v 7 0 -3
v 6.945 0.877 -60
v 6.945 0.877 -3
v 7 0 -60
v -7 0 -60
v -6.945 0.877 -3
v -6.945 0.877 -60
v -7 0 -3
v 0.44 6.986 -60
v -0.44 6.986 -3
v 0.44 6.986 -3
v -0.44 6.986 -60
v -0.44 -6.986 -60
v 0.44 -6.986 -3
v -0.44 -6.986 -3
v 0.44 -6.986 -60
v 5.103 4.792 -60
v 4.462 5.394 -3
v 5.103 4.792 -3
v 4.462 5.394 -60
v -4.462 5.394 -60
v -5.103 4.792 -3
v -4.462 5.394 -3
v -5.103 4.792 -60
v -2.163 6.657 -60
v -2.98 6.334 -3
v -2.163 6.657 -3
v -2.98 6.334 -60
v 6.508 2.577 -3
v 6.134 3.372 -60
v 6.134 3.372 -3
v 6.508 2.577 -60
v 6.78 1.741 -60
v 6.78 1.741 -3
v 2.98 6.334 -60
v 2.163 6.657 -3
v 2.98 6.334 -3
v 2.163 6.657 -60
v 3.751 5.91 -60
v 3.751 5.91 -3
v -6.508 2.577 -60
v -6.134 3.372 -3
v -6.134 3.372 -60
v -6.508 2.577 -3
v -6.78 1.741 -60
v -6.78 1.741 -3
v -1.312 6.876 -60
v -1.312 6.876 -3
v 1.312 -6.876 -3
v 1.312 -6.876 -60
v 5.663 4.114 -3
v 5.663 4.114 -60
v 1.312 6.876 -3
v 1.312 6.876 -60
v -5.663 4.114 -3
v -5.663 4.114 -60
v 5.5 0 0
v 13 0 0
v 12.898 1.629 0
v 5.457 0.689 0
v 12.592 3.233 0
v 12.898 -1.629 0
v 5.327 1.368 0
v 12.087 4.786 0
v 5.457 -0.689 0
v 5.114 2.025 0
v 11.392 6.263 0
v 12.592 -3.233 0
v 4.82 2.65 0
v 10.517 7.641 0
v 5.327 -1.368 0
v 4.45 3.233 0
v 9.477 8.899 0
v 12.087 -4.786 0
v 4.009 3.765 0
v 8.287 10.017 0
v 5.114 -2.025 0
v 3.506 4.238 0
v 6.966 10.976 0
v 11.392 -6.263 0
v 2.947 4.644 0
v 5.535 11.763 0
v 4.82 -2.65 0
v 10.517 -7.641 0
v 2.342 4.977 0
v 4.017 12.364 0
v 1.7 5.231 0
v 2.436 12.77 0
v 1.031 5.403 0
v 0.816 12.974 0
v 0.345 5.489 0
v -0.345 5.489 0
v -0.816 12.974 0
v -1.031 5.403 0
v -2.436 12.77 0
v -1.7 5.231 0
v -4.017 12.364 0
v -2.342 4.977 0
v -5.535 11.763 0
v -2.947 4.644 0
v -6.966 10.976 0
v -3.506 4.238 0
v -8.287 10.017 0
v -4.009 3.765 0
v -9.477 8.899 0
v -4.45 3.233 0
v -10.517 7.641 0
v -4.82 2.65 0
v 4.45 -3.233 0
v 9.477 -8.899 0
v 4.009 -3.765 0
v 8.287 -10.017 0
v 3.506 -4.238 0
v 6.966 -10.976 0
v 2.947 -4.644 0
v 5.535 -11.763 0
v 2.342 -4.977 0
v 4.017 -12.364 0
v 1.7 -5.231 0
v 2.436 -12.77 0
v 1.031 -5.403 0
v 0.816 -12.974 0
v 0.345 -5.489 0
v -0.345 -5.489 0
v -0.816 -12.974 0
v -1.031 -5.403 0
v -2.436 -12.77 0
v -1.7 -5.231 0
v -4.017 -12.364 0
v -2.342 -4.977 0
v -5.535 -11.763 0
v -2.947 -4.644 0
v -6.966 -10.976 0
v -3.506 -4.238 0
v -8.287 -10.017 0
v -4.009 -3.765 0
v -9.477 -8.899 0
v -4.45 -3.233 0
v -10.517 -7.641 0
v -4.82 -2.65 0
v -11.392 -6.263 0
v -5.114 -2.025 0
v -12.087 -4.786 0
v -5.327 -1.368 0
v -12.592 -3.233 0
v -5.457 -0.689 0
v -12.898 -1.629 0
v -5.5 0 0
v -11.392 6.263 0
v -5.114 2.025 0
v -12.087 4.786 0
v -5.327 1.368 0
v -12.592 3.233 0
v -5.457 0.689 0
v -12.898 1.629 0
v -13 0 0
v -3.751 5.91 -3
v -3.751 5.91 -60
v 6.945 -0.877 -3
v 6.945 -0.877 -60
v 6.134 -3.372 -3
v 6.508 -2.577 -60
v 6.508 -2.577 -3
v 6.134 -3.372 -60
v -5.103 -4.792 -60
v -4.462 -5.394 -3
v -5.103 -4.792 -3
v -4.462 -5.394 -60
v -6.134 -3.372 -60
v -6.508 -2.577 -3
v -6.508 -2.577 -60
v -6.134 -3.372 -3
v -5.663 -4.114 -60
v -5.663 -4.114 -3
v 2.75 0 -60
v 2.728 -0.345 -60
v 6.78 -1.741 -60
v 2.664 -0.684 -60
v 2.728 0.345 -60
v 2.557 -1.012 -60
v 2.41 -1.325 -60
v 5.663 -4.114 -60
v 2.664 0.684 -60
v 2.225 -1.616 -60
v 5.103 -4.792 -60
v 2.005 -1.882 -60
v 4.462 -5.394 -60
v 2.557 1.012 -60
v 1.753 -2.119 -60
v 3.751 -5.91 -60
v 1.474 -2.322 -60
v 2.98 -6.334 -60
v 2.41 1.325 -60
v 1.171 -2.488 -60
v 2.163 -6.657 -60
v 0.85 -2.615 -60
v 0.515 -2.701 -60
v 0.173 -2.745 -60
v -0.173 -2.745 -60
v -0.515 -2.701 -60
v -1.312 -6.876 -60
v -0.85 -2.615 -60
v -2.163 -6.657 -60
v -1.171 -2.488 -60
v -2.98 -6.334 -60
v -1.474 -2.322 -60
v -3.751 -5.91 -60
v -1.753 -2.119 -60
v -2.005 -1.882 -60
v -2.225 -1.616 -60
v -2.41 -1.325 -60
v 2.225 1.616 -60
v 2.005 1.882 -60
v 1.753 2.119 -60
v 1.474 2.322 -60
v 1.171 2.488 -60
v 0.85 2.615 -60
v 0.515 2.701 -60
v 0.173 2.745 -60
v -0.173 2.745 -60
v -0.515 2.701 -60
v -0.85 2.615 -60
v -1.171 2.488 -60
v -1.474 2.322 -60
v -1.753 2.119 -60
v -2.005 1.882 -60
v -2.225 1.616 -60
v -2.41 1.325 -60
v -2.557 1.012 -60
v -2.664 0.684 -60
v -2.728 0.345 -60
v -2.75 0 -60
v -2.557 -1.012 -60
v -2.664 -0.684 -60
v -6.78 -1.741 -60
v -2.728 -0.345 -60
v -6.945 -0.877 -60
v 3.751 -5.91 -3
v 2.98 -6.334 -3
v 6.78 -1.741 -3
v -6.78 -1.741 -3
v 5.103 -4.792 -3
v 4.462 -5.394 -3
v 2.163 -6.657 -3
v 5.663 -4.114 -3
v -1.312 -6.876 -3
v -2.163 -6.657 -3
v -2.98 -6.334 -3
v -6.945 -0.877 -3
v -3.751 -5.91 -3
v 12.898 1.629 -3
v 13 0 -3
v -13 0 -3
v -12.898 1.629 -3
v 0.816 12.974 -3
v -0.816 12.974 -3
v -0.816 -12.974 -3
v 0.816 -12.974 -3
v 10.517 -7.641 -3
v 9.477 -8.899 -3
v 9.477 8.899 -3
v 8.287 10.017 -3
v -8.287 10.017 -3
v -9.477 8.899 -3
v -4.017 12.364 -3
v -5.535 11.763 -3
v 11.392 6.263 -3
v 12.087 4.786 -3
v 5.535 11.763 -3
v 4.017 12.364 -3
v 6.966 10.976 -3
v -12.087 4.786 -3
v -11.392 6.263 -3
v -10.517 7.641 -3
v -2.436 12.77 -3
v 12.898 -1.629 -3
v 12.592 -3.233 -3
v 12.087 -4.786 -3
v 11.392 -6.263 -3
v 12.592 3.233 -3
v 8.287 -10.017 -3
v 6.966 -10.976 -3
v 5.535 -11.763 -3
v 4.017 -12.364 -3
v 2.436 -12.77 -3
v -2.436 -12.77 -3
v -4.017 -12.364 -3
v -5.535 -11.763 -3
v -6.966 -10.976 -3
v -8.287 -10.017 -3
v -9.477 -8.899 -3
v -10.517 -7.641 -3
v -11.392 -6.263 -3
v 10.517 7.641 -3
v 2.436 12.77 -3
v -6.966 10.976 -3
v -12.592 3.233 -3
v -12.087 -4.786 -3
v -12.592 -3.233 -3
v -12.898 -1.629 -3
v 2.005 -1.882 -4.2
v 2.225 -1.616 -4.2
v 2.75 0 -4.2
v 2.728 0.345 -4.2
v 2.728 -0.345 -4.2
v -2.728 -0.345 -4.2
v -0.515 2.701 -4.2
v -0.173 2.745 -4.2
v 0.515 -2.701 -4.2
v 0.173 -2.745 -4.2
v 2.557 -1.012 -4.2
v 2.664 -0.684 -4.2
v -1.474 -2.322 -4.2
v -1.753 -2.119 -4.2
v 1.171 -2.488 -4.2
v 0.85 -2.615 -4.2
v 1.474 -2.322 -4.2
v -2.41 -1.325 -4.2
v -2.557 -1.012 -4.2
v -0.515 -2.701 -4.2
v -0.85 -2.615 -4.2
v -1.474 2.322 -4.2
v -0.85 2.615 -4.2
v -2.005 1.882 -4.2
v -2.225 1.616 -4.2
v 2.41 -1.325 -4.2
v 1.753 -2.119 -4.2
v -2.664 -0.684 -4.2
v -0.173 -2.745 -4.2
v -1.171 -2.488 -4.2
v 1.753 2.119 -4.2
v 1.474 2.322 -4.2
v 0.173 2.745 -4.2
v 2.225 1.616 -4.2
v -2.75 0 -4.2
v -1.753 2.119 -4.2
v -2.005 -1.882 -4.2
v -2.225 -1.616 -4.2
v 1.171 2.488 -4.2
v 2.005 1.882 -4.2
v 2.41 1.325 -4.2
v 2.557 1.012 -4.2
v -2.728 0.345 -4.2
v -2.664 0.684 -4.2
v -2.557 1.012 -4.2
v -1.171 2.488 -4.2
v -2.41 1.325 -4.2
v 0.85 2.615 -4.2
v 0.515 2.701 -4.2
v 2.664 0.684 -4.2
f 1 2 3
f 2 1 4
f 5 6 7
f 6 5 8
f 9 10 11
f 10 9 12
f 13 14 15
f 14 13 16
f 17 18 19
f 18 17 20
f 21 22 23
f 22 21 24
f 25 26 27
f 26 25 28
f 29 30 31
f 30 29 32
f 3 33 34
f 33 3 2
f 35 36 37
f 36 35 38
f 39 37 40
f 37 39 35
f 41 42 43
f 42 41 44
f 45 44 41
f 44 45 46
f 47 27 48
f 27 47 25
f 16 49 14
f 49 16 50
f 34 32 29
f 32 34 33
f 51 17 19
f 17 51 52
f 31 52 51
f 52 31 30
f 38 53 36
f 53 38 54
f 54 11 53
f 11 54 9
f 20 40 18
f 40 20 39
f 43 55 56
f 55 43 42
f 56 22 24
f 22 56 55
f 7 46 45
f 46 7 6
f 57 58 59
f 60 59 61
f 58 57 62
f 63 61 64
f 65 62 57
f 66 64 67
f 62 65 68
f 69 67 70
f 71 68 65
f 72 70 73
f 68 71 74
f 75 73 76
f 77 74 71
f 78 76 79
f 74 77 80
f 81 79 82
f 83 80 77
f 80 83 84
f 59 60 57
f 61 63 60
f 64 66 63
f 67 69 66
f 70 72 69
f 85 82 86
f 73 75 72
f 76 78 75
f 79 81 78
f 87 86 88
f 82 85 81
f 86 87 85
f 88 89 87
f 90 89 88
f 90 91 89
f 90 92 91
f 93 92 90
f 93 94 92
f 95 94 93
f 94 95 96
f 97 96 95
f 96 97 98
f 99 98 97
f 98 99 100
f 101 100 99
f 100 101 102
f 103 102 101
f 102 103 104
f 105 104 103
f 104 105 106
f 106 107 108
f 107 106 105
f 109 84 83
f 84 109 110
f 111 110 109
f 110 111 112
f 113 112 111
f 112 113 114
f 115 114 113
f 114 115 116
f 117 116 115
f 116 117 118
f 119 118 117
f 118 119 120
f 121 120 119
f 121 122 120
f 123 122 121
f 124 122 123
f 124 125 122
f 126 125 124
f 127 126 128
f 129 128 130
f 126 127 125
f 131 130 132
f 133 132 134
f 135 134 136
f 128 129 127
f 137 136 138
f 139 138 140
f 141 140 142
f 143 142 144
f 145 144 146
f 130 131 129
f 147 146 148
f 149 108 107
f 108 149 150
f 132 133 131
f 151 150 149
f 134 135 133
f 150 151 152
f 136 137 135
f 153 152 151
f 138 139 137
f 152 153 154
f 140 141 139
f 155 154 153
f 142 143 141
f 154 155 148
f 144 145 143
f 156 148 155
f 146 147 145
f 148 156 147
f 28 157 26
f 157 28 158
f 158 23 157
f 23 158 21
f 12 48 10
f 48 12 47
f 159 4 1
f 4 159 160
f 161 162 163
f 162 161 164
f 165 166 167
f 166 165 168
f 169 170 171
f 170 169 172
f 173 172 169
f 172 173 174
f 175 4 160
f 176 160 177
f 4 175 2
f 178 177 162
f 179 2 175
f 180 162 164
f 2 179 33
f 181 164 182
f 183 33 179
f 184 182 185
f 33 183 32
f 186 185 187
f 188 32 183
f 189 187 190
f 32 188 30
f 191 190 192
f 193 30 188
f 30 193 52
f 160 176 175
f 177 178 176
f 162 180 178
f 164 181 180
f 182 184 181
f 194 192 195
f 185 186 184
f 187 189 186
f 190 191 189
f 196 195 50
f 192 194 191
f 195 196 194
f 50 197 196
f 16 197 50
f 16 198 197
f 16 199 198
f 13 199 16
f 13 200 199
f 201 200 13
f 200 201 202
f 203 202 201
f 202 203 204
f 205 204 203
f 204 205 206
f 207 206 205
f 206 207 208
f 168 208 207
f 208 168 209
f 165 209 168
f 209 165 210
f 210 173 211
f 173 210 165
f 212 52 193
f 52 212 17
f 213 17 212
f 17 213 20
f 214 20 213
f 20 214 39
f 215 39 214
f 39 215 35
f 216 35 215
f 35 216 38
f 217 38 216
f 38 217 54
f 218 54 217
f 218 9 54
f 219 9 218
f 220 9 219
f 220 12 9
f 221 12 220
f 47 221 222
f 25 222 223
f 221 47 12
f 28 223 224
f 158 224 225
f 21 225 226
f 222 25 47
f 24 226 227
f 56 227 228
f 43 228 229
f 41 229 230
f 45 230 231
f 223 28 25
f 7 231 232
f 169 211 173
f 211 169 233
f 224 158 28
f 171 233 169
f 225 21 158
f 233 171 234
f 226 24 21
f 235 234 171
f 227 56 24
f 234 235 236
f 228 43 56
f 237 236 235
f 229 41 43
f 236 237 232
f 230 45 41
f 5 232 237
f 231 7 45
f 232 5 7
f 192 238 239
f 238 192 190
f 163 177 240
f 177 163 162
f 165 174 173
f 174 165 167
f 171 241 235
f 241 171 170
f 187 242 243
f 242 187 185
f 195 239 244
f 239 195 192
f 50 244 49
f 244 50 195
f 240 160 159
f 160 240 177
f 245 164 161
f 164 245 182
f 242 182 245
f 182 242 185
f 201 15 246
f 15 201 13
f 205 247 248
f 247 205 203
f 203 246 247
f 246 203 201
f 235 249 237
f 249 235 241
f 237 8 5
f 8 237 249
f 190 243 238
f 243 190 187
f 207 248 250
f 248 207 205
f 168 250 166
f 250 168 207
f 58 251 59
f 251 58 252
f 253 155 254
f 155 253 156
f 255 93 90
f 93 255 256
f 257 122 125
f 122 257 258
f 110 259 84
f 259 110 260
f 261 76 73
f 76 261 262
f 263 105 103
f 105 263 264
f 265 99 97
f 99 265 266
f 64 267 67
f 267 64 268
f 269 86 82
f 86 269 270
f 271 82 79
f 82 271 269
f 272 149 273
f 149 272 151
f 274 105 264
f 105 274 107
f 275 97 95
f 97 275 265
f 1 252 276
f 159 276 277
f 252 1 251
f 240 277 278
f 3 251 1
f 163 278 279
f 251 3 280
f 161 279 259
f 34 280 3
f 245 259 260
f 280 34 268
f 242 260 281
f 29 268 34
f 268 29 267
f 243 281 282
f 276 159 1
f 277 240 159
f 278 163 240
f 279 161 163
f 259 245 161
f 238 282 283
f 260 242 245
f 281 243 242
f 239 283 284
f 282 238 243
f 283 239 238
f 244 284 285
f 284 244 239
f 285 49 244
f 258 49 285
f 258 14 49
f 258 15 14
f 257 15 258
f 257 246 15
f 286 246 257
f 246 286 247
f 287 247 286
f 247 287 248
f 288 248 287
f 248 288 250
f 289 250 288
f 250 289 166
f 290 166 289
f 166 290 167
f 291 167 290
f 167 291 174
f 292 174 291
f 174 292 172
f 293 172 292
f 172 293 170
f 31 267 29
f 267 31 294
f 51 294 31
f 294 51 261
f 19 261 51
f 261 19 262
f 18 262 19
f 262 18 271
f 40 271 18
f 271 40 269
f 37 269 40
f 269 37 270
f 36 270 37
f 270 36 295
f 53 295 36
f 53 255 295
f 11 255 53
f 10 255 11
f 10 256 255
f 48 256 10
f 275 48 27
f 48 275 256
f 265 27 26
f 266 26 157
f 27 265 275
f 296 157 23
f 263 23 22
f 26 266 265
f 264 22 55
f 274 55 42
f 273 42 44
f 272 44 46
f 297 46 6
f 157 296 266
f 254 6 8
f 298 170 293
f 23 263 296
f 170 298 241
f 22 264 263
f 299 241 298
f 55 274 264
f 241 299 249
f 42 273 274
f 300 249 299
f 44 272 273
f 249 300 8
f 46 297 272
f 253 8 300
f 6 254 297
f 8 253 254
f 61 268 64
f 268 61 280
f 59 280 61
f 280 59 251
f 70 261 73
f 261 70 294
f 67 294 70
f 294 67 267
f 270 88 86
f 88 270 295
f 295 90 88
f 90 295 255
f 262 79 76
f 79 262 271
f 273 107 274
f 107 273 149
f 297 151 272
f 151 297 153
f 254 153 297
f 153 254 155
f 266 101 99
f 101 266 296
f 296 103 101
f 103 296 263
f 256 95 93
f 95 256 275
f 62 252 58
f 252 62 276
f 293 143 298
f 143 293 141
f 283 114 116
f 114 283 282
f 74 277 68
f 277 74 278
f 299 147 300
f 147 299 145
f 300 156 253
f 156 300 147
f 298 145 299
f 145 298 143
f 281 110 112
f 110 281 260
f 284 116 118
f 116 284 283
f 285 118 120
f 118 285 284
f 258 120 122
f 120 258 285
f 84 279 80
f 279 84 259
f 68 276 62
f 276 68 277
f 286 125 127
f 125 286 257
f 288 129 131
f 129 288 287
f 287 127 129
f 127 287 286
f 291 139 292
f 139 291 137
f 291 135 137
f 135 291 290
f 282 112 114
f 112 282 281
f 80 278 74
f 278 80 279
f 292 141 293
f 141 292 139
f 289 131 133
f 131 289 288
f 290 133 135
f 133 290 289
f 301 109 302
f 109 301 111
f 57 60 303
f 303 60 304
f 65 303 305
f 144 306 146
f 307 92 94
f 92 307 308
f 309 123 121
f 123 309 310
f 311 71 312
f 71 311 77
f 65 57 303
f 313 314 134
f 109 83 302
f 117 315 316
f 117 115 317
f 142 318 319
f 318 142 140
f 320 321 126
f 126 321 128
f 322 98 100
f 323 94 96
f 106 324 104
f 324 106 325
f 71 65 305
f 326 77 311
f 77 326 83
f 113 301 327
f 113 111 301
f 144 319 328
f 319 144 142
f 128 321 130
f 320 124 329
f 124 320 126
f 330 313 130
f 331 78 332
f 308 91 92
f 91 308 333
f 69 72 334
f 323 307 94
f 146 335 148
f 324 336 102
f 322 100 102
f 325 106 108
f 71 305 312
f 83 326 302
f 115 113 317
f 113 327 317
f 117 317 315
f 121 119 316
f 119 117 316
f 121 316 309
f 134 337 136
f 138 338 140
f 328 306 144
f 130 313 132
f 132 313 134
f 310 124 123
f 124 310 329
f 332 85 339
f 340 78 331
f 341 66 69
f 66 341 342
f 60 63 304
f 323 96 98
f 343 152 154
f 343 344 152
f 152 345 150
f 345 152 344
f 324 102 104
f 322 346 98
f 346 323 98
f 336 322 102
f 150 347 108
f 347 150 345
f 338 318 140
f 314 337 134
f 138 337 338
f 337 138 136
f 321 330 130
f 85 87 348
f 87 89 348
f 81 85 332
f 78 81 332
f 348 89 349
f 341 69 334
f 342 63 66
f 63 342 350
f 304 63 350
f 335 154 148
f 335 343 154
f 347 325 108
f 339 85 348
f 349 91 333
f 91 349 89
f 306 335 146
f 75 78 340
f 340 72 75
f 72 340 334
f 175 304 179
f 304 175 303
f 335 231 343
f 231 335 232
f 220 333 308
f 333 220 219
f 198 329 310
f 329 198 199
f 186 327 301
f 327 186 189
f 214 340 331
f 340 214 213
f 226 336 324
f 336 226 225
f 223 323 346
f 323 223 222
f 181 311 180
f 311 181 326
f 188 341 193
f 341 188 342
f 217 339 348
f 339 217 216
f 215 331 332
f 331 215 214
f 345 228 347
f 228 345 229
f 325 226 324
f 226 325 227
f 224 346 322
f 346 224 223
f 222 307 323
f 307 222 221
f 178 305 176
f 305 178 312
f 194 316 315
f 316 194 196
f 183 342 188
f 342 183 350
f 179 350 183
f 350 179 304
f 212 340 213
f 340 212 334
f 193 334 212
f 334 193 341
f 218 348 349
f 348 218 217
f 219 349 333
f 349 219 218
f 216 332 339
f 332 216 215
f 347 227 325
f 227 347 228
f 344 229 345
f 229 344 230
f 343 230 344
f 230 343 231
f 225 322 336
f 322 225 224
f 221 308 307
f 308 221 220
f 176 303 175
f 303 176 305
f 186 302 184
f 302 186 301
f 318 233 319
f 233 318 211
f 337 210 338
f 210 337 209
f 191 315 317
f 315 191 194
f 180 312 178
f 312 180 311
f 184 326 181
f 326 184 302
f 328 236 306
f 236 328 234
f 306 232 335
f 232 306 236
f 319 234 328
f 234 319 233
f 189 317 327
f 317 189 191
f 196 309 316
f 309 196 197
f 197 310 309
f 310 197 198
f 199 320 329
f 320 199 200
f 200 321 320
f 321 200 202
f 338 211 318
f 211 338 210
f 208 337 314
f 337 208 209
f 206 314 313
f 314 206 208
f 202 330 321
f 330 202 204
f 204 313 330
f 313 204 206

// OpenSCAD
$fn = 50;


difference() {
	union() {
		translate(v = [0, 0, -60.0000000000]) {
			cylinder(h = 60, r = 7.0000000000);
		}
		translate(v = [0, 0, -3.0000000000]) {
			cylinder(h = 3, r = 13.0000000000);
		}
	}
	union() {
		translate(v = [0, 0, 0]) {
			rotate(a = [0, 0, 0]) {
				difference() {
					union() {
						#translate(v = [0, 0, -60.0000000000]) {
							cylinder(h = 60, r = 2.2500000000);
						}
						#translate(v = [0, 0, -4.2000000000]) {
							cylinder(h = 4.2000000000, r = 7.0000000000, r1 = 2.7500000000, r2 = 5.5000000000);
						}
						#translate(v = [0, 0, -60.0000000000]) {
							cylinder(h = 60, r = 2.7500000000);
						}
						#translate(v = [0, 0, -60.0000000000]) {
							cylinder(h = 60, r = 2.2500000000);
						}
					}
					union();
				}
			}
		}
	}
}
